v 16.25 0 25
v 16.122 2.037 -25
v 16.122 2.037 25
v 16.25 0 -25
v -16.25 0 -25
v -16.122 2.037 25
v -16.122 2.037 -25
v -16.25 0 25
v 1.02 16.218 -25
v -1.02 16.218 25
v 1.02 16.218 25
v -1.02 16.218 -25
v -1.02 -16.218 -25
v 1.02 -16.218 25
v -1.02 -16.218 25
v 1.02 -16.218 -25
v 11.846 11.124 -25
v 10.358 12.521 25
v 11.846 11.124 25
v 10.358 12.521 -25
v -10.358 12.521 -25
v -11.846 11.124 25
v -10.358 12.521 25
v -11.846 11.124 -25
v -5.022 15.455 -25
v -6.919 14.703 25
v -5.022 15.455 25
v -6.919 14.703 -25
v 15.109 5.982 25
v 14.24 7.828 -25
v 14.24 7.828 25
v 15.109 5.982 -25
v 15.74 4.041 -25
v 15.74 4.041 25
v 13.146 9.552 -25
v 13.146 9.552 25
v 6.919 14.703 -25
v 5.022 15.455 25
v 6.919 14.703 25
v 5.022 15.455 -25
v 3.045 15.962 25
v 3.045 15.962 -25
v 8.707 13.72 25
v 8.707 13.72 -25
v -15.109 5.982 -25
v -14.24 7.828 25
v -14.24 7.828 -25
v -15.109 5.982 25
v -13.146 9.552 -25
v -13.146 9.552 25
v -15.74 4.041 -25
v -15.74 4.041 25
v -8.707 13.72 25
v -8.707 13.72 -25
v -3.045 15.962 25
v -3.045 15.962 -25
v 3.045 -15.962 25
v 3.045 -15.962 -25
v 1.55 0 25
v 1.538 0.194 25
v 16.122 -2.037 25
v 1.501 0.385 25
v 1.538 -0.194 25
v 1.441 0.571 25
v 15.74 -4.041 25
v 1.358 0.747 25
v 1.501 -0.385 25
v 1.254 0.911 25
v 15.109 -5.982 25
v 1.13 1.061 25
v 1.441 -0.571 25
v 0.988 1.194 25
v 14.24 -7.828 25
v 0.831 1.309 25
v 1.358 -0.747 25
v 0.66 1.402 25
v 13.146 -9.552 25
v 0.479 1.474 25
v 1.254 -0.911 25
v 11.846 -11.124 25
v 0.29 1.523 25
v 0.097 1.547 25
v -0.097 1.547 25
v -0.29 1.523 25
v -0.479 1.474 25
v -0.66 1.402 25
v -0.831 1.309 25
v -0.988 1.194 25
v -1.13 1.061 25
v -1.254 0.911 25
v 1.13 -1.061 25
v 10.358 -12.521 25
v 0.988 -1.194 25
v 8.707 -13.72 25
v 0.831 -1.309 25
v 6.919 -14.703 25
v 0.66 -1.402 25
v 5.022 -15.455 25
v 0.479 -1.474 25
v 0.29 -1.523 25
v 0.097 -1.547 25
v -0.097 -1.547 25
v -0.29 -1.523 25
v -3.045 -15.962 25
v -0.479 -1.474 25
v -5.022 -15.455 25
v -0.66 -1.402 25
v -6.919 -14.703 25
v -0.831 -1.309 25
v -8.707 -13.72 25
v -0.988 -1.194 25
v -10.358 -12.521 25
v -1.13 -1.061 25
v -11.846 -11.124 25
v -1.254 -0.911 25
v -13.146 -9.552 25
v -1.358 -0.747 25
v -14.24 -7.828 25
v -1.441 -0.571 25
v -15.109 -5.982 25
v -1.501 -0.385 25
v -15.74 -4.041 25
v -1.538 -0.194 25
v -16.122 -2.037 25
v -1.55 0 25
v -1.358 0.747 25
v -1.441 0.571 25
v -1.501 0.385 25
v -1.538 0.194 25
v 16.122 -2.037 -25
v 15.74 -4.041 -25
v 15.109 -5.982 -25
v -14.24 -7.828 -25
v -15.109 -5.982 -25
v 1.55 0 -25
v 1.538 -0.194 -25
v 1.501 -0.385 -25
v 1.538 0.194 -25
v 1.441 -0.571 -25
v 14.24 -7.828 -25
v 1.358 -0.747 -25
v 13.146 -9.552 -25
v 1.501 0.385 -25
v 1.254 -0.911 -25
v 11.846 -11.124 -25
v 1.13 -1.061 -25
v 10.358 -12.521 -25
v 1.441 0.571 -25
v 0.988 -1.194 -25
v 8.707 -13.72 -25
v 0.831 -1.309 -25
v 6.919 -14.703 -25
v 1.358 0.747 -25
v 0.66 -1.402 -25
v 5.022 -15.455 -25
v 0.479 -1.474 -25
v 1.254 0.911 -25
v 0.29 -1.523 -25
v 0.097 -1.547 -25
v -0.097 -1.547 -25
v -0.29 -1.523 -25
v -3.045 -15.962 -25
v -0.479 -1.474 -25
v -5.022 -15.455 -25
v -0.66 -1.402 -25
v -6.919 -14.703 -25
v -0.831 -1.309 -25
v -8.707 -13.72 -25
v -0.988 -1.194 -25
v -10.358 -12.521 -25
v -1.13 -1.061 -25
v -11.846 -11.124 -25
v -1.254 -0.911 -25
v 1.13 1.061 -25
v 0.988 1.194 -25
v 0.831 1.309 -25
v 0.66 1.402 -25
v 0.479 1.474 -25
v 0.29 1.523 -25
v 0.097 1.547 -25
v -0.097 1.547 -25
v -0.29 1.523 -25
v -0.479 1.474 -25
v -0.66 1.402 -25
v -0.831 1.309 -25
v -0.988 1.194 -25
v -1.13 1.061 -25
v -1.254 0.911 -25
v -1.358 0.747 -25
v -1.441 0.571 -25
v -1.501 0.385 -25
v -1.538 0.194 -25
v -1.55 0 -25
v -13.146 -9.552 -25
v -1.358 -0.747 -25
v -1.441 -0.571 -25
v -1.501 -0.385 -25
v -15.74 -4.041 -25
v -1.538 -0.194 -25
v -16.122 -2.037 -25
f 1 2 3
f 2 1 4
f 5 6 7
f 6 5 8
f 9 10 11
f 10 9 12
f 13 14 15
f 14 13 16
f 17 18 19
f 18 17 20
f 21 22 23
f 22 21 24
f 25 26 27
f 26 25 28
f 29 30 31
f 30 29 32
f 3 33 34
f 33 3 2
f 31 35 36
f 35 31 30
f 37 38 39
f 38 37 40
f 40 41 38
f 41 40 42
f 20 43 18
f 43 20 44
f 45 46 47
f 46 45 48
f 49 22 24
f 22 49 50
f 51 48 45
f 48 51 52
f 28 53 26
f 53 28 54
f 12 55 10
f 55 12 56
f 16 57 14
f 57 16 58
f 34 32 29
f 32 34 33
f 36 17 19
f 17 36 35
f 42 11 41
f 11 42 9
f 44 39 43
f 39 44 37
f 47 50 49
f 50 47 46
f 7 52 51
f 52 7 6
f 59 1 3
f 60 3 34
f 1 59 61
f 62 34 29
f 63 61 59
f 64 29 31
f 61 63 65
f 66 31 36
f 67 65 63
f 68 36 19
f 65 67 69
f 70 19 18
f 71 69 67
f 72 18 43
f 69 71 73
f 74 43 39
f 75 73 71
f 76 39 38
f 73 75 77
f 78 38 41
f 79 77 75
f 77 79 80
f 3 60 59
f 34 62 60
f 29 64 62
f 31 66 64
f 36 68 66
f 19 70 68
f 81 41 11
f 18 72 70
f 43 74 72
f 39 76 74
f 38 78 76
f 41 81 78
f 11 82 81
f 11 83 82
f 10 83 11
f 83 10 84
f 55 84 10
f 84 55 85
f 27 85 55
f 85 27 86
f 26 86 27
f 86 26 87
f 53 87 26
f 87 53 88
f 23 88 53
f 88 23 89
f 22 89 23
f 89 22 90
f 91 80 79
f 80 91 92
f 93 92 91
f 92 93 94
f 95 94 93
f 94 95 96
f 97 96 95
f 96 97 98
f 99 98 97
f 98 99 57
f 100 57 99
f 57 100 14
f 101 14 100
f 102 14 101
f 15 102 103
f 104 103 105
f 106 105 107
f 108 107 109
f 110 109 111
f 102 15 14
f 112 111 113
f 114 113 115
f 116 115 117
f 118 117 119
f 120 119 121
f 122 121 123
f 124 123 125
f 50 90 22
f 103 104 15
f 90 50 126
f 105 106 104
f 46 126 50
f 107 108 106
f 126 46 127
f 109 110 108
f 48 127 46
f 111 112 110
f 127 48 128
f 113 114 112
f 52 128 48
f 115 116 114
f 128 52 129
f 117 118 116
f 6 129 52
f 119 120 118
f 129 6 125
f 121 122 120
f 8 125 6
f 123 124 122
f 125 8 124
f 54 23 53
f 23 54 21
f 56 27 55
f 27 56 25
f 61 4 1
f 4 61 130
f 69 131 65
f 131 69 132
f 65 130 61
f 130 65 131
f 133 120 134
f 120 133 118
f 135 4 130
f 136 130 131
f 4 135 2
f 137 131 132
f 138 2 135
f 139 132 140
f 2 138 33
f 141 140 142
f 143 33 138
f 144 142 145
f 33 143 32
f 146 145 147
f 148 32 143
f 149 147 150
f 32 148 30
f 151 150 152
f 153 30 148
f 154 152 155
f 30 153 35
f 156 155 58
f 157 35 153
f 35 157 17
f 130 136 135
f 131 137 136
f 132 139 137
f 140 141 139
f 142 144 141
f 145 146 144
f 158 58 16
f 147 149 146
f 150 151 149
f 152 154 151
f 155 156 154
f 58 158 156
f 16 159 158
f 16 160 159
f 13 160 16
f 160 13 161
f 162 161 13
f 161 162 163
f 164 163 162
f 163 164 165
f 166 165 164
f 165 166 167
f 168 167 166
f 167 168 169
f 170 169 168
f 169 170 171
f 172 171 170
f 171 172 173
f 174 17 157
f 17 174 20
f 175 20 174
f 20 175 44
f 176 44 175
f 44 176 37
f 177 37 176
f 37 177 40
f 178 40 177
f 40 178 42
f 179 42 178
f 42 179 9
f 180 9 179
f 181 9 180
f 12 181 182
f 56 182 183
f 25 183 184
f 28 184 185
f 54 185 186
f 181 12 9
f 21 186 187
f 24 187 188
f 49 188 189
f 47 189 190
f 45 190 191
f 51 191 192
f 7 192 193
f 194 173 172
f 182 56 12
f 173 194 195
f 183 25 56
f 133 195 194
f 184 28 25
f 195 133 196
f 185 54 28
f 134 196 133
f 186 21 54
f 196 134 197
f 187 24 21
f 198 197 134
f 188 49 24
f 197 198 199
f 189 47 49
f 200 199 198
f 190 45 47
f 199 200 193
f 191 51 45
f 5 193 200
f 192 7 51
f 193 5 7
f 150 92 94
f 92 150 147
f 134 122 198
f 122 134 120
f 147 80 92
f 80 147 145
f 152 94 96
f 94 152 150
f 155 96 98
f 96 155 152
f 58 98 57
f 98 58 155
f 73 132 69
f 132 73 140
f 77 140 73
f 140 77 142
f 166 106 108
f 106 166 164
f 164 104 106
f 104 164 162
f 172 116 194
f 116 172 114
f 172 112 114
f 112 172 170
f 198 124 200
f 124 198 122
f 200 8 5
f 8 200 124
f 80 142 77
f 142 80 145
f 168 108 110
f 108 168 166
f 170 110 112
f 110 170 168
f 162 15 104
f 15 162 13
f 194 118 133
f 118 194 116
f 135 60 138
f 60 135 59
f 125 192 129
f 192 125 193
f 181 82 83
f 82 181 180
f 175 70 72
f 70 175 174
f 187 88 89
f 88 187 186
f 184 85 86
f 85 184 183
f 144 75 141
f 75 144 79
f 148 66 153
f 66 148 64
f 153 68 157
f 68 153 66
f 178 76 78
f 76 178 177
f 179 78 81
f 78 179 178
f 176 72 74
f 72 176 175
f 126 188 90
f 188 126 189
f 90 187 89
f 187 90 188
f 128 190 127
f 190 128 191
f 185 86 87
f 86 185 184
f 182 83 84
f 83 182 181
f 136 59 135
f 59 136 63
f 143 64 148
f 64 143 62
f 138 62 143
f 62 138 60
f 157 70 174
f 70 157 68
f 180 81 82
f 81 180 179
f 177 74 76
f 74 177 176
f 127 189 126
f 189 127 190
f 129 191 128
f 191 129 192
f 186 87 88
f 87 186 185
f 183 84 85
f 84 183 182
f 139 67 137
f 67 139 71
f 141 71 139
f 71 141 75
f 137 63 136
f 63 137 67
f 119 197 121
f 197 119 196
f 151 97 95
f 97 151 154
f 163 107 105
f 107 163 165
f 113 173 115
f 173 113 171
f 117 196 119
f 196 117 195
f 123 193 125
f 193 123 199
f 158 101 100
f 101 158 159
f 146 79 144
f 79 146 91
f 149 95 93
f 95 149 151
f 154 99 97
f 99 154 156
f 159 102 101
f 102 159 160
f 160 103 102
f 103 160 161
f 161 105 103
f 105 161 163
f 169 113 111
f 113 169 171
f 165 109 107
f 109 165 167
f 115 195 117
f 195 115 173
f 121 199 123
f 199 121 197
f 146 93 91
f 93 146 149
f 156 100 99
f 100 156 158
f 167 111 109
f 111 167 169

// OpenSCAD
$fn = 50;


difference() {
	union() {
		translate(v = [0, 0, -25.0000000000]) {
			cylinder(h = 50, r = 16.2500000000);
		}
	}
	union() {
		translate(v = [0, 0, -100.0000000000]) {
			cylinder(h = 200, r = 1.5500000000);
		}
	}
}
